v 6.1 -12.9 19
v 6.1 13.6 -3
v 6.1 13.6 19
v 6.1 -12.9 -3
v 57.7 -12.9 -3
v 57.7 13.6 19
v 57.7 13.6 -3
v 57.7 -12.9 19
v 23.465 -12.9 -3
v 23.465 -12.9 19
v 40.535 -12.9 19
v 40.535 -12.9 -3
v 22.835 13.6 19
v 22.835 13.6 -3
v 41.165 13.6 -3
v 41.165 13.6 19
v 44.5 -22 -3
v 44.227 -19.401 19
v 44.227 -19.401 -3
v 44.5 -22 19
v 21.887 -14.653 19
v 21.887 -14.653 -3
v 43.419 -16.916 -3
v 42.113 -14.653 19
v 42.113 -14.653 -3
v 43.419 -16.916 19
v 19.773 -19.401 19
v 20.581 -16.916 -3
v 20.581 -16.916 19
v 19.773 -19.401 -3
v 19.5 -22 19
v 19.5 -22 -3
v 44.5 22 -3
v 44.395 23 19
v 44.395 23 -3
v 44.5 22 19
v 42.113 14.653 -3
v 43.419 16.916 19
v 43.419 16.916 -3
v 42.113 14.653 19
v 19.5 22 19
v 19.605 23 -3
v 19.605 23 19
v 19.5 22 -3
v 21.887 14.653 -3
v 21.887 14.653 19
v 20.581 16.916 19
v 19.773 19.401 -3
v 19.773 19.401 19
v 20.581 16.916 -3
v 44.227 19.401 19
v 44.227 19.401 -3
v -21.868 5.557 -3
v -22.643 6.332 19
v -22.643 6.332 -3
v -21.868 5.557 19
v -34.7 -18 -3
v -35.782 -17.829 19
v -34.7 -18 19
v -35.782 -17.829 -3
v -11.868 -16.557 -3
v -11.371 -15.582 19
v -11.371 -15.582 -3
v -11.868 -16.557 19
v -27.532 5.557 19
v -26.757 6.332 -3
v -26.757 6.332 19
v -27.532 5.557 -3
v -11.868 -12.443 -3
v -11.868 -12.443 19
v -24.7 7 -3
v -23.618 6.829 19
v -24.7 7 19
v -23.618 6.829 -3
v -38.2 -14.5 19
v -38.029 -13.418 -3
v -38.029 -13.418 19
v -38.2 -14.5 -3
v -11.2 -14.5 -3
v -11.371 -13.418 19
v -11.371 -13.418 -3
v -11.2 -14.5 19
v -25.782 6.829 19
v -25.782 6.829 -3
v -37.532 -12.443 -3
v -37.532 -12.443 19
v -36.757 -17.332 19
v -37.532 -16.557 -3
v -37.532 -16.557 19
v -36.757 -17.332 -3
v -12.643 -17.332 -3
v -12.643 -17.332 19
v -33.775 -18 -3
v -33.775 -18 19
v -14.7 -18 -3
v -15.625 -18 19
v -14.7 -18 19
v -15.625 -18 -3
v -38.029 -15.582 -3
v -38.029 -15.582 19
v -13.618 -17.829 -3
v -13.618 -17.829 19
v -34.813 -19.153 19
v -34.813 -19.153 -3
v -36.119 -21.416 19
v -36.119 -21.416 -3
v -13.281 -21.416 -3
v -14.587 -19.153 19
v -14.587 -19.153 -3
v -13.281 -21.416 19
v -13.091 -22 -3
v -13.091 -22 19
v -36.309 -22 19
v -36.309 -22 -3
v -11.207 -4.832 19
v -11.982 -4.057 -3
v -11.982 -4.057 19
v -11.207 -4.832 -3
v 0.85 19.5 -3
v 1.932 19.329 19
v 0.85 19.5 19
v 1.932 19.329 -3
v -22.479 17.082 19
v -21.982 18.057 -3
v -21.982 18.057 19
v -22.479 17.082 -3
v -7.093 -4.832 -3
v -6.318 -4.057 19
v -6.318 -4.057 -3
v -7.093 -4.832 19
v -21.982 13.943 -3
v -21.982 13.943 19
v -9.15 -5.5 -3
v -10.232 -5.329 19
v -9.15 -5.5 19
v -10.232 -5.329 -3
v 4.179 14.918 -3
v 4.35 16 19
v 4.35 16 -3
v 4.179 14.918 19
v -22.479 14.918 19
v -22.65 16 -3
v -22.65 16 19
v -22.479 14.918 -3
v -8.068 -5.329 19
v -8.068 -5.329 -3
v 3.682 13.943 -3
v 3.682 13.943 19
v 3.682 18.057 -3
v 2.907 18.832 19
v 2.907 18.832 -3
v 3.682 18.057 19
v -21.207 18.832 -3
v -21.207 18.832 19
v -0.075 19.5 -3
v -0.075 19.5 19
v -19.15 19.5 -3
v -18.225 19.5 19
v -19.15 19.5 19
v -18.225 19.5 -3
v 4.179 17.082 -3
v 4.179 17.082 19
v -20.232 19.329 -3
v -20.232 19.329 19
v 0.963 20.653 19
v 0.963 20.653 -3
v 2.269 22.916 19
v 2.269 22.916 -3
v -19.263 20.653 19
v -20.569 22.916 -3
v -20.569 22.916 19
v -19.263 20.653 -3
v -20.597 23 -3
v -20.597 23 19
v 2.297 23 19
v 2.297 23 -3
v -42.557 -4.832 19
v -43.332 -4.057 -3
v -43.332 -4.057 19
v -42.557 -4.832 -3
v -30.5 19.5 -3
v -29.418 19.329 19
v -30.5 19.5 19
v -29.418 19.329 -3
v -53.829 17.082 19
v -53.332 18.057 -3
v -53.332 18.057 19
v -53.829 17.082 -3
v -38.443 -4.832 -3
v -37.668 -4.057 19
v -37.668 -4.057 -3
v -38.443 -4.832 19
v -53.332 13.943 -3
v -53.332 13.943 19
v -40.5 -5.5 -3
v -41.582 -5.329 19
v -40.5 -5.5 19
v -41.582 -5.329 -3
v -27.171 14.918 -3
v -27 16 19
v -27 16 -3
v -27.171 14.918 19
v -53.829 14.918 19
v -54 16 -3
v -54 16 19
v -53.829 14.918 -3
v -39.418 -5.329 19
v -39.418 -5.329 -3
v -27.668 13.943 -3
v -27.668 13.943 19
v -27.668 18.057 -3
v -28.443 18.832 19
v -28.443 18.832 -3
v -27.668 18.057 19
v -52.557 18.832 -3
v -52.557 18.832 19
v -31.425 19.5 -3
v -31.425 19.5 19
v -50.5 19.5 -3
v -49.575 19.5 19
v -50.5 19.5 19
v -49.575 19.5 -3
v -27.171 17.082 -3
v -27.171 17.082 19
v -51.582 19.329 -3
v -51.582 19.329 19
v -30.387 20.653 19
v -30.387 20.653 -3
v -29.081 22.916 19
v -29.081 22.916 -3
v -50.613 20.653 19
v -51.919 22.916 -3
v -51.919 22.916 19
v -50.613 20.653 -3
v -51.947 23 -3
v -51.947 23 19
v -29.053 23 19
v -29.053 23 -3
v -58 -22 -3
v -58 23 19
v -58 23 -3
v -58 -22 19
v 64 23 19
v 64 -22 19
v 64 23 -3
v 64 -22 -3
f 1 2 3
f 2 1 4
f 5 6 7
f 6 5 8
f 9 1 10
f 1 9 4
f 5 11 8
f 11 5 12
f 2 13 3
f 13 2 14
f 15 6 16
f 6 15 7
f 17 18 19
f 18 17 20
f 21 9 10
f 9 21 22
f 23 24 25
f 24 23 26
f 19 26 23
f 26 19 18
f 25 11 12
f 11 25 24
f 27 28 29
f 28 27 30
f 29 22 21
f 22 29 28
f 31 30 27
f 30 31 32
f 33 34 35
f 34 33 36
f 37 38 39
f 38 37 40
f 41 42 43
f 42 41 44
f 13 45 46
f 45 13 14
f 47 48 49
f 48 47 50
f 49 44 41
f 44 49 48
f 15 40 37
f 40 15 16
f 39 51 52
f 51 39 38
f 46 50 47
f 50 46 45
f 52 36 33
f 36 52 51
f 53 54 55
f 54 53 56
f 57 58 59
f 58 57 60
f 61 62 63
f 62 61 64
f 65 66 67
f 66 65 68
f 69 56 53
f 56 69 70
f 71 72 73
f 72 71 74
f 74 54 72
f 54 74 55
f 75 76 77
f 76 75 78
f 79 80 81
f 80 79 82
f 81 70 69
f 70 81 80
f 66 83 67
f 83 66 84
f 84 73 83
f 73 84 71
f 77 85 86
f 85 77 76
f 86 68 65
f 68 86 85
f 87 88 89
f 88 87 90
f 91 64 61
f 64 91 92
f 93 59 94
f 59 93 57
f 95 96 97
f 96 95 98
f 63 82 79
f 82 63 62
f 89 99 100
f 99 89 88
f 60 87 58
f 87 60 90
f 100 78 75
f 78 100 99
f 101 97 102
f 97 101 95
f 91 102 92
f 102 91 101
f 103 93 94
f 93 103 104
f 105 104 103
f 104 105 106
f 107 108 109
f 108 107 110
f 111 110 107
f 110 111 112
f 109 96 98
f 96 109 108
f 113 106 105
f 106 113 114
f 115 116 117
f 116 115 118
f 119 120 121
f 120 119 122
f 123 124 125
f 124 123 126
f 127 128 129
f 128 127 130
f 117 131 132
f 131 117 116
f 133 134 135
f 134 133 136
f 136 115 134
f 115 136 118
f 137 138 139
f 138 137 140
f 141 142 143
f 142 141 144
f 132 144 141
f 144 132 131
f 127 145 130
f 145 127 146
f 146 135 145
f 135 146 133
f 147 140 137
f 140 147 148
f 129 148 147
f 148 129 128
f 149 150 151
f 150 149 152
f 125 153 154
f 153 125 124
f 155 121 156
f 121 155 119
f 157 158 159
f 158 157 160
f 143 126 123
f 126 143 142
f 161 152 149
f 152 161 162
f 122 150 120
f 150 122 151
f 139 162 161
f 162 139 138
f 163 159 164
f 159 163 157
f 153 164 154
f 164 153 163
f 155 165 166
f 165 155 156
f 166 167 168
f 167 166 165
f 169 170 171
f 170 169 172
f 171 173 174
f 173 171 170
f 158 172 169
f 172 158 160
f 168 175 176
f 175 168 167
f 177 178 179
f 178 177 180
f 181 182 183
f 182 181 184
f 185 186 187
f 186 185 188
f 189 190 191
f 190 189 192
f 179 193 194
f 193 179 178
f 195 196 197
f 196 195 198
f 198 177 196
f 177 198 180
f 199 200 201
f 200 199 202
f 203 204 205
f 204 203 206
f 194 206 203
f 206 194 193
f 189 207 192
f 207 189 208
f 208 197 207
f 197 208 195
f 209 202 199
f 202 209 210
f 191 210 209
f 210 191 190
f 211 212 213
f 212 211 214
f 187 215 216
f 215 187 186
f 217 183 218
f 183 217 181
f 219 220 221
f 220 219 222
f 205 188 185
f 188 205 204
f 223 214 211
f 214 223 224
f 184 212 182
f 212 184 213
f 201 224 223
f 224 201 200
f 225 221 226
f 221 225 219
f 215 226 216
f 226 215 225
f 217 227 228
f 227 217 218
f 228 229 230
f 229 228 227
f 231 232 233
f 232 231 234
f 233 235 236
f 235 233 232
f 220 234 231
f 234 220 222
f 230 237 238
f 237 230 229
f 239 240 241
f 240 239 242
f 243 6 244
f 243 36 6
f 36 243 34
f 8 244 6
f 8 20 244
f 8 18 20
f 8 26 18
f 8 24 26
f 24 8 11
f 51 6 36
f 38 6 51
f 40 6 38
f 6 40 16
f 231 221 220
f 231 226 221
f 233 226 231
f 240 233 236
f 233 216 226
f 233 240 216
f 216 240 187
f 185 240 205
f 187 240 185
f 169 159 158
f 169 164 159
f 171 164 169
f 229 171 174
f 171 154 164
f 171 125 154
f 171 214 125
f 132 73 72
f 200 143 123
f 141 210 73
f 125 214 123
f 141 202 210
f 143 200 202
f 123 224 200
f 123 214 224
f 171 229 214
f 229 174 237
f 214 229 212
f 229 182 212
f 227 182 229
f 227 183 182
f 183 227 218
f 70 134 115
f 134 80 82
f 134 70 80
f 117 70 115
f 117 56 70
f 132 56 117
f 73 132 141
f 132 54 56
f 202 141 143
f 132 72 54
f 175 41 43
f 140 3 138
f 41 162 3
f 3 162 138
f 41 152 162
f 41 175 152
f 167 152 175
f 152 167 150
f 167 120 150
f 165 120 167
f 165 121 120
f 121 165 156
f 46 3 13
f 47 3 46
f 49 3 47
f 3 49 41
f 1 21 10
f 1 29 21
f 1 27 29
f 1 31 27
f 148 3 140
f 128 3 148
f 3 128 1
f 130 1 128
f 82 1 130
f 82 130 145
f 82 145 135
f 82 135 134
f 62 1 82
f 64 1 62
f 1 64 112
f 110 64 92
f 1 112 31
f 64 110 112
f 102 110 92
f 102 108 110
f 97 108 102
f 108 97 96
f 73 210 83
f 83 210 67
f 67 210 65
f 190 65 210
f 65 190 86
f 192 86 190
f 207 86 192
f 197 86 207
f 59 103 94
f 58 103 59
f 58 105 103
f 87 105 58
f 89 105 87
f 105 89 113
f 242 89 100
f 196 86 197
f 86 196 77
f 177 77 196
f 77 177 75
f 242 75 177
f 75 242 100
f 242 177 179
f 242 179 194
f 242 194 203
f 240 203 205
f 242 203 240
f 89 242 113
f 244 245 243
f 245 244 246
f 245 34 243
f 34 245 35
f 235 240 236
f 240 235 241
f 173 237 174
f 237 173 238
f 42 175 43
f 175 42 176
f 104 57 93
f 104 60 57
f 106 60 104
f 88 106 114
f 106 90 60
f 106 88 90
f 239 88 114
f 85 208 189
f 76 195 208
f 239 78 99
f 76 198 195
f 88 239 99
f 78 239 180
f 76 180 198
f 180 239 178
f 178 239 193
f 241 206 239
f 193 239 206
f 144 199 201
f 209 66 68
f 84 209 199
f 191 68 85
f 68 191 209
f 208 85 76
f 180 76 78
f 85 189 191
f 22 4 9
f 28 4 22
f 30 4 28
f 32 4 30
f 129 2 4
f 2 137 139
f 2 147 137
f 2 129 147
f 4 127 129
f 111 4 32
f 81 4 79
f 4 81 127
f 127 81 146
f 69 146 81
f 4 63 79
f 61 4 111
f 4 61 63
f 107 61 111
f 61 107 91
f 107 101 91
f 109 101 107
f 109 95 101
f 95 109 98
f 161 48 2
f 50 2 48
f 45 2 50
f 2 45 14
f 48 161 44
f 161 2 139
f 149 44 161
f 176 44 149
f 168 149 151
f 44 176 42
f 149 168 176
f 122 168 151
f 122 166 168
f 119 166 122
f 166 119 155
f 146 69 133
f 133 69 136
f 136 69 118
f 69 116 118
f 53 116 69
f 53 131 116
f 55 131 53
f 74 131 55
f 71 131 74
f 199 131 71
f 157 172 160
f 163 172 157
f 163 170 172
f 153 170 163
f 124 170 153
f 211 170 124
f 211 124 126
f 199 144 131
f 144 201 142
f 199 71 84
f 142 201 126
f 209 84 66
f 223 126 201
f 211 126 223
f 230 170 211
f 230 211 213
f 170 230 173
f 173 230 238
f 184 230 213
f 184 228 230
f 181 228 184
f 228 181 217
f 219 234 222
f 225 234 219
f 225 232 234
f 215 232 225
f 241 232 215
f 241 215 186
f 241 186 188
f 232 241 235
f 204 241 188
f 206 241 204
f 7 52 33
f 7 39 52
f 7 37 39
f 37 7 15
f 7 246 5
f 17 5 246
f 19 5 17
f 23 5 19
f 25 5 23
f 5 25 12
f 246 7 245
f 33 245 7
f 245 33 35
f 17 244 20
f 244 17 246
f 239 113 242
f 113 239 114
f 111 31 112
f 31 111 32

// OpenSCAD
//importar_base();
//importar_full();
//translate([0,0,3])
difference() {
  quadrado();
  recortes();
}

module importar_full() {
translate([170.72,-335,0])
import("../hold2_noise_spawn.stl");
}

module importar_base() {
translate([170.72,-335,-3])
import("hold2_noise_spawn__cut.stl");
}

module quadrado() {
  translate([-86+28,-22,-3])
  color("silver")
  cube ([122,45,22]);
}

module recortes() {
union() {
  corteSpawn();
  corteRuidos();
}
}

module corteSpawn() {
  translate([6.1,-12.9,-4])
  color("red")
  cube ([51.6,26.5,24]);

  translate([32,-22,-4])
  color("green")
  cylinder(h=24, d=25);

  translate([32,22,-4])
  color("green")
  cylinder(h=24, d=25);
}

module corteRuidos() {
color("green") {
  translate([-24.7,3.5,-4])
  corteRuidoUnit();

  translate([-9.15,-2,-4])
  rotate([0,0,180])
  corteRuidoUnit();

  translate([-40.5,-2,-4])
  rotate([0,0,180])
  corteRuidoUnit();
}
}

module corteRuidoUnit() {
union() {
  hull() {
    cylinder(h=24, d=7, $fn=20);

    translate([-10,-18,0])
    cylinder(h=24, d=7, $fn=20);

    translate([10,-18,0])
    cylinder(h=24, d=7, $fn=20);
  }

  translate([0,-30,0])
  cylinder(h=24, d=25);
}
}
